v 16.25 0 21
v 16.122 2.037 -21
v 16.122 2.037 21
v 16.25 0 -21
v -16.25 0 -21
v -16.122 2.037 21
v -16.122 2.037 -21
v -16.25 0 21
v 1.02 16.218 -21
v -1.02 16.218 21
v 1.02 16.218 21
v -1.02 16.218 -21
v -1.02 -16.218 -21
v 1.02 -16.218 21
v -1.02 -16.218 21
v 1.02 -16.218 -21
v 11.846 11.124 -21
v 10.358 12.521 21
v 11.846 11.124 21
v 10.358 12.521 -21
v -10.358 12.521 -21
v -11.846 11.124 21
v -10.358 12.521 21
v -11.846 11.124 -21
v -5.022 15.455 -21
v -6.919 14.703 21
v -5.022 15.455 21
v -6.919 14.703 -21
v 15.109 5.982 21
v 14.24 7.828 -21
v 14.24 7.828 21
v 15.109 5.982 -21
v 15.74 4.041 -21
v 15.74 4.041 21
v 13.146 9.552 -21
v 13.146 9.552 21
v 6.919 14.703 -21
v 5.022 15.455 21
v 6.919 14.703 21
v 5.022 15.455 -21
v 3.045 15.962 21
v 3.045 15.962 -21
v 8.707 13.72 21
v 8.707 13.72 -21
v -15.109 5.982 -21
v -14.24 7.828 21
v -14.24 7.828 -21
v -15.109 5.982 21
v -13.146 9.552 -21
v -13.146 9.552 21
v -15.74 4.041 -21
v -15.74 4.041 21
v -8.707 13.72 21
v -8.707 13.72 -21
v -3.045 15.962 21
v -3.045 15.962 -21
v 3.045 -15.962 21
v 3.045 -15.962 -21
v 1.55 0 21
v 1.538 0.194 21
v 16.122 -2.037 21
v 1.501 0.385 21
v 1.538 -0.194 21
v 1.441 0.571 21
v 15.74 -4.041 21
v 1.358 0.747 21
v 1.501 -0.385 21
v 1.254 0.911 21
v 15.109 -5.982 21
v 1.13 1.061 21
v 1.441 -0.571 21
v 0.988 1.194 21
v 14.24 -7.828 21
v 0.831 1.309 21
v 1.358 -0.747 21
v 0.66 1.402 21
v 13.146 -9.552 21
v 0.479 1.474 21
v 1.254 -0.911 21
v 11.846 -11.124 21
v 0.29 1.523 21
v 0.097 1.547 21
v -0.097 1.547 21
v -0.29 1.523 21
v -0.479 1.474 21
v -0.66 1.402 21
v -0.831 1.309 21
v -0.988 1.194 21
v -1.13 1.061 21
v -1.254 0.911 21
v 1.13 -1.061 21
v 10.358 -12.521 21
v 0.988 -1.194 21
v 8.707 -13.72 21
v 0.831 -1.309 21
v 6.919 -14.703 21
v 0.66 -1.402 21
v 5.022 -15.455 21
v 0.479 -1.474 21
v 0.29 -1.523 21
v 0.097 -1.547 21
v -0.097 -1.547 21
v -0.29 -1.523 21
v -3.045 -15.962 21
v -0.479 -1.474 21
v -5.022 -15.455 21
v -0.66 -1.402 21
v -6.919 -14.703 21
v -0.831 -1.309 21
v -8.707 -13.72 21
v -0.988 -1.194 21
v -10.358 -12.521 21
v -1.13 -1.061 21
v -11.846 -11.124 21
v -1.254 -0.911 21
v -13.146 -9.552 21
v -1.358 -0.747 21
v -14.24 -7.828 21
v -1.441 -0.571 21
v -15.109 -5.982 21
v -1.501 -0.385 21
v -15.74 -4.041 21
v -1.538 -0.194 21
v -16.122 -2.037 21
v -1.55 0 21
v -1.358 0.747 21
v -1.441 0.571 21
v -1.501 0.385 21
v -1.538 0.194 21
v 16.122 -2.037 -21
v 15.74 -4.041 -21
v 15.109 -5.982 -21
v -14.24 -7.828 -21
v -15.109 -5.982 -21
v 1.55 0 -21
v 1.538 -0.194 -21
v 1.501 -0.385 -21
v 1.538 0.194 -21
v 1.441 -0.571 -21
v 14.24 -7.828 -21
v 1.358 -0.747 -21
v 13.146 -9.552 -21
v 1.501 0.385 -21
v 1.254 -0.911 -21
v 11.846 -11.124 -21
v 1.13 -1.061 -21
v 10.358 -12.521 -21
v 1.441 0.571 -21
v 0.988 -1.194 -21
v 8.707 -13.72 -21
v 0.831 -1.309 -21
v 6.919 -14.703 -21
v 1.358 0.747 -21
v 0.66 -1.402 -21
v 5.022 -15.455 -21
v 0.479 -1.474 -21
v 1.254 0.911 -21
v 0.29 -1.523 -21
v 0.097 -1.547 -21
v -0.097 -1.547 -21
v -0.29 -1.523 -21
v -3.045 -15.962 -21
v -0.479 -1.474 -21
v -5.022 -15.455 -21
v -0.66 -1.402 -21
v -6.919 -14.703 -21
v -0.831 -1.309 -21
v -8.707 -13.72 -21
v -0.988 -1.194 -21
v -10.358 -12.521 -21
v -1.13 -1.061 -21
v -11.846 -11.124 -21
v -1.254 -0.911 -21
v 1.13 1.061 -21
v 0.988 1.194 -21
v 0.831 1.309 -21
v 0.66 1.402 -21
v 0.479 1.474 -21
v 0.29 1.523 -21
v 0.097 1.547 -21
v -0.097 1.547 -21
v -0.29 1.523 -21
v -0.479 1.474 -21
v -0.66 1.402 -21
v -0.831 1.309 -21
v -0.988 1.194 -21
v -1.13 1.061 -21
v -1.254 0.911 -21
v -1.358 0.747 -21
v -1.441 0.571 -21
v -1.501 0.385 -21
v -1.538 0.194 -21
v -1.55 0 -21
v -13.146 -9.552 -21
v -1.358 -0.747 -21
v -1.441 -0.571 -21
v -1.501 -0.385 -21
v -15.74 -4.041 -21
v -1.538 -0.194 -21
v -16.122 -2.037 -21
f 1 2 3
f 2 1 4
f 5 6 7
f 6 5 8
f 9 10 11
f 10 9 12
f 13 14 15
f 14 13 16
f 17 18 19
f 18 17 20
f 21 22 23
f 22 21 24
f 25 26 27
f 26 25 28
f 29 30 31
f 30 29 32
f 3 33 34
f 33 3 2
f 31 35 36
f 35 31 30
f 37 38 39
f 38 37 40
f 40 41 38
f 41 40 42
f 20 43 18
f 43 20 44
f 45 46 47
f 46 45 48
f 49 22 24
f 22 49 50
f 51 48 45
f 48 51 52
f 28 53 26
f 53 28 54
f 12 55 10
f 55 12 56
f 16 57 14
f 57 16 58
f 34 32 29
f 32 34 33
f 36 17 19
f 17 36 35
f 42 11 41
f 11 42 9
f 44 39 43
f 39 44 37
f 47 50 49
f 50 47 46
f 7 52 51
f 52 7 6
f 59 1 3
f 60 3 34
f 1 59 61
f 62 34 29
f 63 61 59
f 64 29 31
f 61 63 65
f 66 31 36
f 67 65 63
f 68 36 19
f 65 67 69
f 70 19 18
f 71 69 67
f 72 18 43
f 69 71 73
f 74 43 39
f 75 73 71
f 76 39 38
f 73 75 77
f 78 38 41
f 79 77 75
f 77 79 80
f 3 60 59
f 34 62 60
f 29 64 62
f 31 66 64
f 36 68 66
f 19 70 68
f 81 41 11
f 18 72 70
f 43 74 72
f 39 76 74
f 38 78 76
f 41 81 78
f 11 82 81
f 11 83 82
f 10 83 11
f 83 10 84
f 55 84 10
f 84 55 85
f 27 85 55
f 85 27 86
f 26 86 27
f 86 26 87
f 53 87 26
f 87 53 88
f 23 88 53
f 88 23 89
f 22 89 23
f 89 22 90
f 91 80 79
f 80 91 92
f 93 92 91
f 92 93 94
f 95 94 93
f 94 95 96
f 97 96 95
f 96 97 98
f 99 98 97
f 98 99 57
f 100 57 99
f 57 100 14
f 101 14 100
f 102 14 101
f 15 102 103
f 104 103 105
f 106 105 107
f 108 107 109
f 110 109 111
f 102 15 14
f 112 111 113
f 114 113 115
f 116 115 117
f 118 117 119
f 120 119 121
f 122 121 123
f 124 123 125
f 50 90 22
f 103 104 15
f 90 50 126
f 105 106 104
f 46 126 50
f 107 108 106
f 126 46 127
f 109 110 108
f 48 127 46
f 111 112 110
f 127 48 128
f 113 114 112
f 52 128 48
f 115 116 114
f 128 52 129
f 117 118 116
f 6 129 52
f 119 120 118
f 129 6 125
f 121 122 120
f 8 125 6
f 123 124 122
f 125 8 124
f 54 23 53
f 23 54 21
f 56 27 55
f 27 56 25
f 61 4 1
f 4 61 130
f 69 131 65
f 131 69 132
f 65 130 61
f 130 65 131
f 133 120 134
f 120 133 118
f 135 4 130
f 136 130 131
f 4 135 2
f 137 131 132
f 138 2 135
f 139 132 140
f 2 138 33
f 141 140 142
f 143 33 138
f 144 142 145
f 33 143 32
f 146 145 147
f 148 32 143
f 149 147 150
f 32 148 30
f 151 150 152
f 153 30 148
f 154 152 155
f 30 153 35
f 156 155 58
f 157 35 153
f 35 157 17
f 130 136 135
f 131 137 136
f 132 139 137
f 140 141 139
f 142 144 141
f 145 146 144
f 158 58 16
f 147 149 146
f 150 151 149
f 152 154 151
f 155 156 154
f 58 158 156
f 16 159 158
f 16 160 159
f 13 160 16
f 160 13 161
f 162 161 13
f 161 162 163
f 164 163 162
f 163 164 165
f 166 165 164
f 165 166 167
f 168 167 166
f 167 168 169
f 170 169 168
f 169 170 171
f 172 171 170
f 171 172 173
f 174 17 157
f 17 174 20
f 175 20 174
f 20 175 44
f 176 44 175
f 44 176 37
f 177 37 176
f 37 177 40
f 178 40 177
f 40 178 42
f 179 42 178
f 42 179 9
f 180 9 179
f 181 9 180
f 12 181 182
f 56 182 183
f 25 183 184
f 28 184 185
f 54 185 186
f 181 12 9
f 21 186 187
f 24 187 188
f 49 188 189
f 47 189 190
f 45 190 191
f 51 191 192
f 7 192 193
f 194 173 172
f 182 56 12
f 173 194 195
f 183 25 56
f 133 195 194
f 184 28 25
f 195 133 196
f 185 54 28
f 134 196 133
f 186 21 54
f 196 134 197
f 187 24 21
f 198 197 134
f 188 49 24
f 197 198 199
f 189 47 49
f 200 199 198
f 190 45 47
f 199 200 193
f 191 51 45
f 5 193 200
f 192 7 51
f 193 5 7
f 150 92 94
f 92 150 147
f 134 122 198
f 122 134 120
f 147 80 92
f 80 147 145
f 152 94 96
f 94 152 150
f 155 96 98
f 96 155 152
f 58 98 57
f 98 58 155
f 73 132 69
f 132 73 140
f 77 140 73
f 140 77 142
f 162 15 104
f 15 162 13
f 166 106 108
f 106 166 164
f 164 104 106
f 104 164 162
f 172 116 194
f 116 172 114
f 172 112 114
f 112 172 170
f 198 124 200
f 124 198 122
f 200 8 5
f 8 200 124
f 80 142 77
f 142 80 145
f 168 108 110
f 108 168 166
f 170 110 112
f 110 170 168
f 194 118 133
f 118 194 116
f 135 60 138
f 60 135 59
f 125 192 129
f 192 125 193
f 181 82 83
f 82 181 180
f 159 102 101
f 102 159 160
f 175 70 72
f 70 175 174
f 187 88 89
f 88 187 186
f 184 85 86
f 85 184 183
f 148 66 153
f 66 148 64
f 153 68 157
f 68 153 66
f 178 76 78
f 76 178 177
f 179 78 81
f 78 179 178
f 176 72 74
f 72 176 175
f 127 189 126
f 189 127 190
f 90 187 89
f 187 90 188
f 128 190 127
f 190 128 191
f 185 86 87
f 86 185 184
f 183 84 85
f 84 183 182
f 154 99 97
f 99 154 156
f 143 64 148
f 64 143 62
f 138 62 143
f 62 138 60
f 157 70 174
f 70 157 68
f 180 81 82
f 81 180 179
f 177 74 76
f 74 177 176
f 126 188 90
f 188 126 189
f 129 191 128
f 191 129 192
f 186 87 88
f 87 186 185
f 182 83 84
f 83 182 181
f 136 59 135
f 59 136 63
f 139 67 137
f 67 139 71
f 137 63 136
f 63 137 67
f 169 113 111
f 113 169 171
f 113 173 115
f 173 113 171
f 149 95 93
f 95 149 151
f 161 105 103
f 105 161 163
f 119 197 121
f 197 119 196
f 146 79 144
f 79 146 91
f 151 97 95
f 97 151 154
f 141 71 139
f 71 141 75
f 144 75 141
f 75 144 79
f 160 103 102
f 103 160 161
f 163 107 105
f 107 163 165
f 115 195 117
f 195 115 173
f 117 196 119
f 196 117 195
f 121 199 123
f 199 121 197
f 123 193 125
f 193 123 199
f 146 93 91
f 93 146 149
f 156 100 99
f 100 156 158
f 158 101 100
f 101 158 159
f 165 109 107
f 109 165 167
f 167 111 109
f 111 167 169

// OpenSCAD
$fn = 50;


difference() {
	union() {
		translate(v = [0, 0, -21.0000000000]) {
			cylinder(h = 42, r = 16.2500000000);
		}
	}
	union() {
		translate(v = [0, 0, -100.0000000000]) {
			cylinder(h = 200, r = 1.5500000000);
		}
	}
}
